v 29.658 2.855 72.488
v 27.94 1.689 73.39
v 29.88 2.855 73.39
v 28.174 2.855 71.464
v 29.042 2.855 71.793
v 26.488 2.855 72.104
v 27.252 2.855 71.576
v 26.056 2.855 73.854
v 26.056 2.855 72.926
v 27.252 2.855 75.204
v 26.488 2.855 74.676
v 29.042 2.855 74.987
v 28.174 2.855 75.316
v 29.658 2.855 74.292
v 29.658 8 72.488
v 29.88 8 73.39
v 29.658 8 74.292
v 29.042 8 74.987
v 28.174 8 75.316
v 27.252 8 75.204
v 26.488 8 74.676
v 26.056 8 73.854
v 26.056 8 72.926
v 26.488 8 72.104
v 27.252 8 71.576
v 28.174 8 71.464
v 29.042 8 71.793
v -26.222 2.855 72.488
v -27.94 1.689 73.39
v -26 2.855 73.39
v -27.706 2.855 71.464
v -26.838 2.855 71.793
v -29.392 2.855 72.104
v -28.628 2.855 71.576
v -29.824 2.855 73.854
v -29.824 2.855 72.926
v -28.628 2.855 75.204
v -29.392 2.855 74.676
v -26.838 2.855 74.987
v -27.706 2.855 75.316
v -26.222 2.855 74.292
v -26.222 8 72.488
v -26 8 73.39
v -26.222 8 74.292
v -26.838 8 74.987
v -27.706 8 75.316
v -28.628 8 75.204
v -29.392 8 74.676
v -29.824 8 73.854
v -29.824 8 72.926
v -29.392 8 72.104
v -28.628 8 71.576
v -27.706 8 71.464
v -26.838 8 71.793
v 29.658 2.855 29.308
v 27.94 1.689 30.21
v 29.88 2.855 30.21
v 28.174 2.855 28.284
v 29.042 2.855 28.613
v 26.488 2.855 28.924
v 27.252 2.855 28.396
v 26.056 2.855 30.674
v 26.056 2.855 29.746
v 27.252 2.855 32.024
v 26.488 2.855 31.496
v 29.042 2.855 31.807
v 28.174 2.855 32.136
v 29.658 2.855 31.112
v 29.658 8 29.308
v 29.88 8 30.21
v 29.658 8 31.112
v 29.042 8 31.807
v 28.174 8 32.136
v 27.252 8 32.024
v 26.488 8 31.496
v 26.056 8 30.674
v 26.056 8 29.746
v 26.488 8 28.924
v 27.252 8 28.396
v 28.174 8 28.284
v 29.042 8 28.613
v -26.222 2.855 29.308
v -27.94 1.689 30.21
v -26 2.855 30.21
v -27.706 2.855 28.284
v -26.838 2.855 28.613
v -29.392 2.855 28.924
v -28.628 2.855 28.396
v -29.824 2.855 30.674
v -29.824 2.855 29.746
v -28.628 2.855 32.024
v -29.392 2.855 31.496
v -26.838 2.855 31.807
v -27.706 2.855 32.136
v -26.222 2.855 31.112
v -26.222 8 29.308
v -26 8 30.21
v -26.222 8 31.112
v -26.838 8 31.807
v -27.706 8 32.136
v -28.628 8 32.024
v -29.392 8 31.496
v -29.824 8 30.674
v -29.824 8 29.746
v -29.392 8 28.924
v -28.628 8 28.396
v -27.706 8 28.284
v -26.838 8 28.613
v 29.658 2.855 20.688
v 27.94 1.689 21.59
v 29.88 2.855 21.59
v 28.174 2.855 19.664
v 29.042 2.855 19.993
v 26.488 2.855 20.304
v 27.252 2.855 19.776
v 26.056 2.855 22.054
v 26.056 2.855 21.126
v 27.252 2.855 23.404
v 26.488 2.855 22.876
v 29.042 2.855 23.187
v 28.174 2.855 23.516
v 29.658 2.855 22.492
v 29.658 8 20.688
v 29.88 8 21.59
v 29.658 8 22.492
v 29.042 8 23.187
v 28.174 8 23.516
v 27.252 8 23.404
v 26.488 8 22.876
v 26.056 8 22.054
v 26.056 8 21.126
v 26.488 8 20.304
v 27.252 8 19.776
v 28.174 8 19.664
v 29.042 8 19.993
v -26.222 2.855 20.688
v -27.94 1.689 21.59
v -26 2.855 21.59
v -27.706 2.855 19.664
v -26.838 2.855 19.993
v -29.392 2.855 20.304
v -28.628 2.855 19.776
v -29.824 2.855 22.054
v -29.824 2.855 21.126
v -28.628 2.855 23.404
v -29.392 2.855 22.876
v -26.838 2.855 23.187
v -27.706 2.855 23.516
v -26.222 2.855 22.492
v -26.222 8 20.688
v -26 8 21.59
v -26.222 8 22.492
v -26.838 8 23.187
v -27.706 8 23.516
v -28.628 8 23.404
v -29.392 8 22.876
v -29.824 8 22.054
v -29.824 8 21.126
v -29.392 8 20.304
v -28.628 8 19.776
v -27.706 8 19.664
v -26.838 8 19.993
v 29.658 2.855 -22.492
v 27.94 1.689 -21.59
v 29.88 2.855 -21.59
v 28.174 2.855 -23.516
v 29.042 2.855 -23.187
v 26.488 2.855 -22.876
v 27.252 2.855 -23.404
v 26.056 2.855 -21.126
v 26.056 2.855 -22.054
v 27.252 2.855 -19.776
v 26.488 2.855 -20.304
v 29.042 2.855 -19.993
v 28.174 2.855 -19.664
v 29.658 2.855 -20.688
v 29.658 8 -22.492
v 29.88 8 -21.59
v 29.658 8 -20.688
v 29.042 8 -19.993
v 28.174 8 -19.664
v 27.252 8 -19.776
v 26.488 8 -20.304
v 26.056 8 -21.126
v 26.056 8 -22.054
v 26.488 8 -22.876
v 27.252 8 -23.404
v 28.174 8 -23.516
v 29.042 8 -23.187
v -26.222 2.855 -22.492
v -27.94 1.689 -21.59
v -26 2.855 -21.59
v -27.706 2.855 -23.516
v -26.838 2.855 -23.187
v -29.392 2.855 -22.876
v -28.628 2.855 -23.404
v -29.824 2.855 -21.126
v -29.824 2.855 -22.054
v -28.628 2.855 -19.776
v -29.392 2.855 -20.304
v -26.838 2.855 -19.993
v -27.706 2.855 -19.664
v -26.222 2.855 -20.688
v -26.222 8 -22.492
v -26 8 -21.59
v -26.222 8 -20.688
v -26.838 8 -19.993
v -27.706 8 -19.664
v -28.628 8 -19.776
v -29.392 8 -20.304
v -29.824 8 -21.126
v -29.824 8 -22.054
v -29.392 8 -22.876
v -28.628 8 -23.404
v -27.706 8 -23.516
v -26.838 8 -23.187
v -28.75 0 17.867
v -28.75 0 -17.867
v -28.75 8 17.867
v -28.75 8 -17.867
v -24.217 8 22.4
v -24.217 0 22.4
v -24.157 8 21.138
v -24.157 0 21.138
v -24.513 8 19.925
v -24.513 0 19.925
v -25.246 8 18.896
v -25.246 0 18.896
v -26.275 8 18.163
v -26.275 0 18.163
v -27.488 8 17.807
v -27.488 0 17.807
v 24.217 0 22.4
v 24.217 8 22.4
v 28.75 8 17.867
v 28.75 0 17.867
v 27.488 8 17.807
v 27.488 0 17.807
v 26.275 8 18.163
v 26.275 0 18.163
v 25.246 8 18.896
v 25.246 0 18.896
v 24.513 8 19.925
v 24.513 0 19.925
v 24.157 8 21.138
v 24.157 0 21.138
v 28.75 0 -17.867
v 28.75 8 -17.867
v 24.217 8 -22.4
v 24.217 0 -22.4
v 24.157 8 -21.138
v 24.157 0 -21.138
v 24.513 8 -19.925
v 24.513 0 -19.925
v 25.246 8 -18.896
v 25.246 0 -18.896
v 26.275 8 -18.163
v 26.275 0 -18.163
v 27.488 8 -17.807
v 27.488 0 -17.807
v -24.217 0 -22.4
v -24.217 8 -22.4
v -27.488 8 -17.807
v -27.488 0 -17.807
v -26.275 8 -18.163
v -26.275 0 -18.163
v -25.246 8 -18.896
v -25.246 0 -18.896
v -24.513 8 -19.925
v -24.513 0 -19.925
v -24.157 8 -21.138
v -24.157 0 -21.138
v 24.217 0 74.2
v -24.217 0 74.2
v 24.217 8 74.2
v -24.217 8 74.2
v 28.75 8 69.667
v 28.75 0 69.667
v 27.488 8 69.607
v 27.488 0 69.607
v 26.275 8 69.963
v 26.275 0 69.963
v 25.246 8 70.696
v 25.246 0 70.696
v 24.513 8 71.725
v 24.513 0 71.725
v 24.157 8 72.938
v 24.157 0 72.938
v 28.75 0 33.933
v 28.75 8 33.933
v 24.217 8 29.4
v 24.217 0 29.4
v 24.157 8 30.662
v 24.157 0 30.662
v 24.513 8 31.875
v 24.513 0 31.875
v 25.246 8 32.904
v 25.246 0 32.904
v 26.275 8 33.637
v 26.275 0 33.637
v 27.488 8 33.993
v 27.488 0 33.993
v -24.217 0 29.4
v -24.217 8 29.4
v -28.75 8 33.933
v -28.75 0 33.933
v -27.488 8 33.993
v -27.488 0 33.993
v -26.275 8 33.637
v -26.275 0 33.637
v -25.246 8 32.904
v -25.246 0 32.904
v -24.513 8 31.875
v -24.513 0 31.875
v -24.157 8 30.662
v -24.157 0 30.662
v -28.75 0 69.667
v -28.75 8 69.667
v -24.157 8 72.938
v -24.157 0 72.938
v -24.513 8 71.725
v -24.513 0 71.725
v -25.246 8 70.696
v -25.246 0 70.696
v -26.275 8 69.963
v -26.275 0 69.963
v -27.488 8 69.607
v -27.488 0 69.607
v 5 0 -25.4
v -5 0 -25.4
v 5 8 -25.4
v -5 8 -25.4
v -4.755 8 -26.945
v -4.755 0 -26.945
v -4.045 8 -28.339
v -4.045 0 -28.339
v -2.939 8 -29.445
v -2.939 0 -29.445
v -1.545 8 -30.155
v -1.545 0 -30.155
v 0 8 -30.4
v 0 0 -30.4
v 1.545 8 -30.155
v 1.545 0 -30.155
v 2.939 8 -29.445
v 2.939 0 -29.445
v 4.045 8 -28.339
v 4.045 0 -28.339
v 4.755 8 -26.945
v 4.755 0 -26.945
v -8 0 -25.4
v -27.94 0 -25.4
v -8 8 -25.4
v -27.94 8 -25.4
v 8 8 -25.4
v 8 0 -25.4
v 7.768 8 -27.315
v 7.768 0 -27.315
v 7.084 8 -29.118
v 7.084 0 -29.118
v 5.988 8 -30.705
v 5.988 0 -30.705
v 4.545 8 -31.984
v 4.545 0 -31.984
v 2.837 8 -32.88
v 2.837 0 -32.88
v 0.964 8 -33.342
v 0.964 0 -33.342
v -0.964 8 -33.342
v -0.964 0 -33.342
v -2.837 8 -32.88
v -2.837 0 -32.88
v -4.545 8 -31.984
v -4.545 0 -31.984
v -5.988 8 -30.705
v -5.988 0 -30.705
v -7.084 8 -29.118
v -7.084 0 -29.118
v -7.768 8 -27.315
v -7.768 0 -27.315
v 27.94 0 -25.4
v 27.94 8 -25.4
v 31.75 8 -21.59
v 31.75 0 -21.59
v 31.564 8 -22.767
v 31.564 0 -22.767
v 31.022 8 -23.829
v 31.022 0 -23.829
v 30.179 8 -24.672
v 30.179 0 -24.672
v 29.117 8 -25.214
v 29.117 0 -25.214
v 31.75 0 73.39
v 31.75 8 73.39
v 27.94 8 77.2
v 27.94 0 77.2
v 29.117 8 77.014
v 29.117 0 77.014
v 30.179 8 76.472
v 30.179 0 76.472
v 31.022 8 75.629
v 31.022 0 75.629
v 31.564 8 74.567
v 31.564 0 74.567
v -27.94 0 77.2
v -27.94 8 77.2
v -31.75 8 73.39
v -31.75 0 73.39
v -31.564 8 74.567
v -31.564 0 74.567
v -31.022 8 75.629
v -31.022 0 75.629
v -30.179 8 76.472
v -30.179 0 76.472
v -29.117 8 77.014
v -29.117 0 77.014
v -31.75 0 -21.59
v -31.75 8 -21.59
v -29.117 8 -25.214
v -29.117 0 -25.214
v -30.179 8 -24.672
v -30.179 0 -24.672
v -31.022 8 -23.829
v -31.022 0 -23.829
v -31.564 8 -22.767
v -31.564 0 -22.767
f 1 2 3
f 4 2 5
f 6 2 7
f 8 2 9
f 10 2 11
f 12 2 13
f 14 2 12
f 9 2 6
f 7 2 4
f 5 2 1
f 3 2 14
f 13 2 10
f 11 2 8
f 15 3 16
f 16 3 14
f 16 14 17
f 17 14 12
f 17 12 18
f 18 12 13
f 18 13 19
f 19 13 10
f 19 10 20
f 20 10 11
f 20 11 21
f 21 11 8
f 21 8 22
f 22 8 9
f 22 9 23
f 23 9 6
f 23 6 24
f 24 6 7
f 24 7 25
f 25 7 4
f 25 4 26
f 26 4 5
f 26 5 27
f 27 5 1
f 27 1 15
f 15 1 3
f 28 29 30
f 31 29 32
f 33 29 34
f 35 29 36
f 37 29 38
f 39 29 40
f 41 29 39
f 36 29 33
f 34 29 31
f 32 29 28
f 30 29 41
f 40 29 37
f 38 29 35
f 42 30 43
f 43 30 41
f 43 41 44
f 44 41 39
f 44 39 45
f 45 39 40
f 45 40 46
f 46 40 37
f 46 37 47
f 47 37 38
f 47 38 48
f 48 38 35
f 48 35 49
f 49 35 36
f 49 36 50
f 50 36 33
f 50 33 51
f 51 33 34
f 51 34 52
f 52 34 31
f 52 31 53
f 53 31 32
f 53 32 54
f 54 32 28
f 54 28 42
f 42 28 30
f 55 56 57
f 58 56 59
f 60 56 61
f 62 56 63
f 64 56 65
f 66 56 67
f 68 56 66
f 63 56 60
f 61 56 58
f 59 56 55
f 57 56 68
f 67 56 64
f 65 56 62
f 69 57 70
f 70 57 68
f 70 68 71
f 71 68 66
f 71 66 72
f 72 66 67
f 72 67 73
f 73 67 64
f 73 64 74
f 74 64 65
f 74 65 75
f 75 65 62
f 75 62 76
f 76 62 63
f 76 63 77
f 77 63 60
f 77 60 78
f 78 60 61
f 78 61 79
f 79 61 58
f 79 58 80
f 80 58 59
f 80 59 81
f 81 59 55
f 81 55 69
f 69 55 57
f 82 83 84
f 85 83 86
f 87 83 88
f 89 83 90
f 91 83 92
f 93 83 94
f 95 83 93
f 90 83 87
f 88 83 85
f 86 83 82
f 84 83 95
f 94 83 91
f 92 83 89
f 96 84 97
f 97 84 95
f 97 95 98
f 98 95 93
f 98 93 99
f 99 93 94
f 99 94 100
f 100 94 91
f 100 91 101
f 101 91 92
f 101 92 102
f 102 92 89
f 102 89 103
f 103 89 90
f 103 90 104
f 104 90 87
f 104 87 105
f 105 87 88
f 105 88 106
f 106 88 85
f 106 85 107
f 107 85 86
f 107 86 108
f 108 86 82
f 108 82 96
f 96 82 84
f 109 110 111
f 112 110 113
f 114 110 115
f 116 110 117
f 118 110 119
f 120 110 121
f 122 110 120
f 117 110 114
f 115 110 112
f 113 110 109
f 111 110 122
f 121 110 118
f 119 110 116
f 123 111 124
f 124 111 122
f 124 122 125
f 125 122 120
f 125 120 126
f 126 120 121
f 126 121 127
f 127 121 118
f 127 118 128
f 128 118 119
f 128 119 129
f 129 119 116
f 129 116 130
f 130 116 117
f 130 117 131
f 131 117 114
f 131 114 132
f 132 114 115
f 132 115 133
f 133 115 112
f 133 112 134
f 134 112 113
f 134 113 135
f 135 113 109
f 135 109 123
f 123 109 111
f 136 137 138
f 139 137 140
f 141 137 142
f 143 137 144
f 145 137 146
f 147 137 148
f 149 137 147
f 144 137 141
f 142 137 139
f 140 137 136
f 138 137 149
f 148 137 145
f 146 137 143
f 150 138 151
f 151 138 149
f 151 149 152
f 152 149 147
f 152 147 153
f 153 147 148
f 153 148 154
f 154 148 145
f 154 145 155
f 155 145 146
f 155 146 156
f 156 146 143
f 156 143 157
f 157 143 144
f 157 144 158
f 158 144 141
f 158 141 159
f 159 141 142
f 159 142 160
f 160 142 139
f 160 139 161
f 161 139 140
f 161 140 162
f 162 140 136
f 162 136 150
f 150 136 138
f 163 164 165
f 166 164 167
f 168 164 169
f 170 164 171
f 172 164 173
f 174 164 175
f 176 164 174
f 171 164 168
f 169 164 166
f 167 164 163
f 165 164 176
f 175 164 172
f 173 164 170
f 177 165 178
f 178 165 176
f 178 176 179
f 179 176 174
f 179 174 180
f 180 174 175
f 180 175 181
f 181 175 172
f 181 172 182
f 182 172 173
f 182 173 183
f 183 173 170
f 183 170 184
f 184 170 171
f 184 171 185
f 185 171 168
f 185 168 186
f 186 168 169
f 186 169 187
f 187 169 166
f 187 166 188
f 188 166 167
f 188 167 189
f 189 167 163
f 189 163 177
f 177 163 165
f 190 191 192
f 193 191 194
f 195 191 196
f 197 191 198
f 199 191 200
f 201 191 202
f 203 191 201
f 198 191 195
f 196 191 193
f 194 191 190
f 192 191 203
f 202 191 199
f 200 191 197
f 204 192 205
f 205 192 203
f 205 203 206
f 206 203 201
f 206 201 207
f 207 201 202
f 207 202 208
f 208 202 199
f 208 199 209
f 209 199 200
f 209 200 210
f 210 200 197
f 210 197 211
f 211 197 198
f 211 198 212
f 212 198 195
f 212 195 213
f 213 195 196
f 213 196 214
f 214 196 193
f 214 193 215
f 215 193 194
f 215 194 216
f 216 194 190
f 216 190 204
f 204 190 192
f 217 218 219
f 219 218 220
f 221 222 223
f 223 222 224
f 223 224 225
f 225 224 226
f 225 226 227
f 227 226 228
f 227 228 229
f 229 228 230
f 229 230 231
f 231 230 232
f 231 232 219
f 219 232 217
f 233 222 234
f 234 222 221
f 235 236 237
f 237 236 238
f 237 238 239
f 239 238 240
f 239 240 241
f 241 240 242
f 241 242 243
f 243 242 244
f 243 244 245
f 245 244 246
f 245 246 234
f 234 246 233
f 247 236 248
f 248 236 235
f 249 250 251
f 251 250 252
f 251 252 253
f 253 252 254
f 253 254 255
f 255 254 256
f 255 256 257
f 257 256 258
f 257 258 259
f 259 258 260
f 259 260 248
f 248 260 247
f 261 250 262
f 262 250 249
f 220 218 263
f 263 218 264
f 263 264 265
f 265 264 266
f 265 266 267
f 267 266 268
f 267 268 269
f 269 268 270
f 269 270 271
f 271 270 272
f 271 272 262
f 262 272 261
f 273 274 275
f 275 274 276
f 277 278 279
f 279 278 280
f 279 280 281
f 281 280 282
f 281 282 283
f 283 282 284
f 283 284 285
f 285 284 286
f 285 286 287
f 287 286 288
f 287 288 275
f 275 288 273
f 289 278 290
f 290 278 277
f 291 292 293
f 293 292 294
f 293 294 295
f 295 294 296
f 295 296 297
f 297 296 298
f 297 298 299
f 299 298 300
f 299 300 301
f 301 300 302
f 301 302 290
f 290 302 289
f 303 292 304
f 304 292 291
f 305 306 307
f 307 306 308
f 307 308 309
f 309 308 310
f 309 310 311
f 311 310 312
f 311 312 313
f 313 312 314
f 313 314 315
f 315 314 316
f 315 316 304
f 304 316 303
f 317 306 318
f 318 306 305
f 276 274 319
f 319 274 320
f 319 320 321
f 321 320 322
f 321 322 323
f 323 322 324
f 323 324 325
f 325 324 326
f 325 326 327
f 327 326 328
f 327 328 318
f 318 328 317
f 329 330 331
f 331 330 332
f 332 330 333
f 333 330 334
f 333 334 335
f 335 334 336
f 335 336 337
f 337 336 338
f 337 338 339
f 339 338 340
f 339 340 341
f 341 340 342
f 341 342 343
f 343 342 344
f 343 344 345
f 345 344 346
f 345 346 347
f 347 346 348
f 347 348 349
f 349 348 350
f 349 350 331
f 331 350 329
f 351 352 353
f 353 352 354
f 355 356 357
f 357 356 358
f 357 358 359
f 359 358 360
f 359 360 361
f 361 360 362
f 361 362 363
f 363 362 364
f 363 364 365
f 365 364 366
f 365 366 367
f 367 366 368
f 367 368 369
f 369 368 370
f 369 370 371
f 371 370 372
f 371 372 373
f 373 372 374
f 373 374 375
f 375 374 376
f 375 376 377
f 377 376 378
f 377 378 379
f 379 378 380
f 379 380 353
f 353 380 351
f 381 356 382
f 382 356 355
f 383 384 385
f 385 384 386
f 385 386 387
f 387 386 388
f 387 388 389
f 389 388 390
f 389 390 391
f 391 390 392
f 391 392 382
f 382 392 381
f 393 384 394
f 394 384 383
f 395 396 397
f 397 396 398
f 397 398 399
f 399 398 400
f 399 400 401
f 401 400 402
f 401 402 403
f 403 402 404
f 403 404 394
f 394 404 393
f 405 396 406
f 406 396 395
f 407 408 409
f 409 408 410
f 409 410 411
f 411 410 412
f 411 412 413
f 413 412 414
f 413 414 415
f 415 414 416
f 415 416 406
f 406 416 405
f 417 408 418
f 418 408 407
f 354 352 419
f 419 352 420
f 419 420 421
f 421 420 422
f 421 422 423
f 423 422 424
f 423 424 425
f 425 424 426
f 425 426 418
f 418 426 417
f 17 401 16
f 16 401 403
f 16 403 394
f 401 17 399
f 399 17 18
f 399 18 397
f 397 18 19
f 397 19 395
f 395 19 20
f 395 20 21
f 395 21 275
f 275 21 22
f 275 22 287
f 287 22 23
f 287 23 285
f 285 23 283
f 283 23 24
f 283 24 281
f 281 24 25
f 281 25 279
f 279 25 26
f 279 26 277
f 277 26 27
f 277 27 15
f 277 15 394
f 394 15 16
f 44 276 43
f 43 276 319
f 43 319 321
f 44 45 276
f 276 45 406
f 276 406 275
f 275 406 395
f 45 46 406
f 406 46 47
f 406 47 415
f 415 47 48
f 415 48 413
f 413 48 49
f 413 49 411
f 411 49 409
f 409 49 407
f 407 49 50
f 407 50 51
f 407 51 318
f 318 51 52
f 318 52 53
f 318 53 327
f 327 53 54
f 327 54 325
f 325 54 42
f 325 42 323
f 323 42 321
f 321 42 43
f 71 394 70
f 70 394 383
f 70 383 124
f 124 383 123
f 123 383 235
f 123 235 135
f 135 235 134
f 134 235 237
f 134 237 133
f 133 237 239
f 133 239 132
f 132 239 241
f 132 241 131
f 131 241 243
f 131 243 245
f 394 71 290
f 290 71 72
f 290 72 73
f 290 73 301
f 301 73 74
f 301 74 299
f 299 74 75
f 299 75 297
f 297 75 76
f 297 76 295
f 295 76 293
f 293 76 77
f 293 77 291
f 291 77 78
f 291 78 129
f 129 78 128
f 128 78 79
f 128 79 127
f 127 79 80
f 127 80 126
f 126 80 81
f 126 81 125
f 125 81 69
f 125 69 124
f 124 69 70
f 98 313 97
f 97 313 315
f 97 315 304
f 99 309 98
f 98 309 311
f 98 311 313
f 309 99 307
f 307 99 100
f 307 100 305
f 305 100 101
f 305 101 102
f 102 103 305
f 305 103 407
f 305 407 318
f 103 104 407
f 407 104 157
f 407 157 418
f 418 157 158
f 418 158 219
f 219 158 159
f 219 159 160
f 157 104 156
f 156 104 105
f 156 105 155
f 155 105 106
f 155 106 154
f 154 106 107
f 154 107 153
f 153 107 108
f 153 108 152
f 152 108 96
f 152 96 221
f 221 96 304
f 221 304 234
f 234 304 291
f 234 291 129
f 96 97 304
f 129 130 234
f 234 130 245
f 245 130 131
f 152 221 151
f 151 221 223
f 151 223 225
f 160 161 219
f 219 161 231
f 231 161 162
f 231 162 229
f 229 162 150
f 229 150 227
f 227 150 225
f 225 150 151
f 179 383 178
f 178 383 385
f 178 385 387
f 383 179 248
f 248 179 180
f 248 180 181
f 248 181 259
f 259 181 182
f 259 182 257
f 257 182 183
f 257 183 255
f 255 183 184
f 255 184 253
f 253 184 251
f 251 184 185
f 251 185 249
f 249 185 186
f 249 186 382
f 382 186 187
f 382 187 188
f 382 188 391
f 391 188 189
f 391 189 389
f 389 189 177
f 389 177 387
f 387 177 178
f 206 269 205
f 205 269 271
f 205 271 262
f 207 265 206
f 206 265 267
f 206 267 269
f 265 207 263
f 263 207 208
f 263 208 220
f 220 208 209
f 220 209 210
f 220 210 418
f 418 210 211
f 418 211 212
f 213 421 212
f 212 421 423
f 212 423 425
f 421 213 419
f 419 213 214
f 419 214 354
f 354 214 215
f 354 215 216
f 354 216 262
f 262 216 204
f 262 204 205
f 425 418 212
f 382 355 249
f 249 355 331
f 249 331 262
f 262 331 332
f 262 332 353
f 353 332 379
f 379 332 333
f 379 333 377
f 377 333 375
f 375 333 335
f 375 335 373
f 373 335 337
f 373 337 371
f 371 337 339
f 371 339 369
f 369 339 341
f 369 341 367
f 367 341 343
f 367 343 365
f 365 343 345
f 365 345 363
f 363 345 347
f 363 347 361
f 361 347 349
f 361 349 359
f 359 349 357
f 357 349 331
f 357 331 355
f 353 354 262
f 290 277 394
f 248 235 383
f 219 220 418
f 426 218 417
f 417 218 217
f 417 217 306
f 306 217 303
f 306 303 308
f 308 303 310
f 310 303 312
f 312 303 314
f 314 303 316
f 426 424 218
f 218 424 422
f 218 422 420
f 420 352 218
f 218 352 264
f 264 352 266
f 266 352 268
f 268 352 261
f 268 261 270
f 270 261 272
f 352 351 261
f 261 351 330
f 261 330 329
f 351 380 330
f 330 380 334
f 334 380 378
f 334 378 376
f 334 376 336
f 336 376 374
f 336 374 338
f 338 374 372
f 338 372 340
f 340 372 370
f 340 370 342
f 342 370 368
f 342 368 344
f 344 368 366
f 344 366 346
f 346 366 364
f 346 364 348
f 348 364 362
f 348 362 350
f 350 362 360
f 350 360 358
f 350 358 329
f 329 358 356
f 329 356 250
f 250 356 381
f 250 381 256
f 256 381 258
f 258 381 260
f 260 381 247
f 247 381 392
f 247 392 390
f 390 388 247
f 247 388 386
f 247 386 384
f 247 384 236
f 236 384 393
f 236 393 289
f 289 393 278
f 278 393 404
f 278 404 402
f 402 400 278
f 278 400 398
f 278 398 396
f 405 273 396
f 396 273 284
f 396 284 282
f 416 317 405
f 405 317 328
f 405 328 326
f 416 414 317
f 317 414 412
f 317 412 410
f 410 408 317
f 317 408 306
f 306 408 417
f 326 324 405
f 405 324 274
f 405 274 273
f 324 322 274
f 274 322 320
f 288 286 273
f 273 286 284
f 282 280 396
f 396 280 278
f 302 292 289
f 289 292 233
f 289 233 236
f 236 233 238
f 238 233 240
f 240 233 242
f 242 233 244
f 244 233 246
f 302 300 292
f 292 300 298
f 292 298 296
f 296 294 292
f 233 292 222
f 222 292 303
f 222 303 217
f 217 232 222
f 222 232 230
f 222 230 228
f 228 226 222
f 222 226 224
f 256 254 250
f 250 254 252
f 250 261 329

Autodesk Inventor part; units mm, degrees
ref_plane "YZ Plane" through (0, 0, 0) normal (1, 0, 0) x (0, 1, 0)
ref_plane "XZ Plane" through (0, 0, 0) normal (0, 1, 0) x (-1, 0, 0)
ref_plane "XY Plane" through (0, 0, 0) normal (0, 0, 1) x (1, 0, 0)
sketch "Sketch1" plane through (0, 0, 0) normal (0, 1, 0) x (-1, 0, 0)
  circle A0 centre (27.94, -21.59) radius 1.94 construction
  line L0 (3.8945, 0) -> (-7.0745, 0) construction
  line L1 (0, -4.534) -> (0, 5.5912) construction
  circle A1 centre (-27.94, -21.59) radius 1.94 construction
  circle A2 centre (27.94, 21.59) radius 1.94 construction
  circle A3 centre (-27.94, 21.59) radius 1.94 construction
  line L2 (27.94, -25.4) -> (-27.94, -25.4)
  line L3 (31.75, 25.9) -> (-31.75, 25.9) construction
  line L4 (31.75, -21.59) -> (31.75, 25.9)
  line L5 (-31.75, -21.59) -> (-31.75, 25.9)
  line L6 (24.2171, -22.4) -> (-24.2171, -22.4)
  line L7 (24.2171, 22.4) -> (-24.2171, 22.4)
  line L8 (28.75, -17.8671) -> (28.75, 17.8671)
  line L9 (-28.75, -17.8671) -> (-28.75, 17.8671)
  arc A4 (-24.2171, -22.4) -> (-28.75, -17.8671) centre (-27.94, -21.59) ccw
  arc A5 (-31.75, -21.59) -> (-27.94, -25.4) centre (-27.94, -21.59) ccw
  arc A6 (27.94, -25.4) -> (31.75, -21.59) centre (27.94, -21.59) ccw
  arc A7 (28.75, -17.8671) -> (24.2171, -22.4) centre (27.94, -21.59) ccw
  arc A8 (-28.75, 17.8671) -> (-24.2171, 22.4) centre (-27.94, 21.59) ccw
  arc A9 (24.2171, 22.4) -> (28.75, 17.8671) centre (27.94, 21.59) ccw
  circle A10 centre (27.94, 73.39) radius 1.94 construction
  circle A11 centre (-27.94, 73.39) radius 1.94 construction
  circle A12 centre (27.94, 30.21) radius 1.94 construction
  circle A13 centre (-27.94, 30.21) radius 1.94 construction
  line L10 (27.94, 77.2) -> (-27.94, 77.2)
  line L11 (31.75, 73.39) -> (31.75, 25.9)
  line L12 (-31.75, 73.39) -> (-31.75, 25.9)
  line L13 (24.2171, 74.2) -> (-24.2171, 74.2)
  line L14 (24.2171, 29.4) -> (-24.2171, 29.4)
  line L15 (28.75, 69.6671) -> (28.75, 33.9329)
  line L16 (-28.75, 69.6671) -> (-28.75, 33.9329)
  arc A14 (-28.75, 69.6671) -> (-24.2171, 74.2) centre (-27.94, 73.39) ccw
  arc A15 (-27.94, 77.2) -> (-31.75, 73.39) centre (-27.94, 73.39) ccw
  arc A16 (31.75, 73.39) -> (27.94, 77.2) centre (27.94, 73.39) ccw
  arc A17 (24.2171, 74.2) -> (28.75, 69.6671) centre (27.94, 73.39) ccw
  arc A18 (-24.2171, 29.4) -> (-28.75, 33.9329) centre (-27.94, 30.21) ccw
  arc A19 (28.75, 33.9329) -> (24.2171, 29.4) centre (27.94, 30.21) ccw
  arc A20 (-8, -25.4) -> (8, -25.4) centre (0, -25.4) ccw
  arc A21 (-5, -25.4) -> (5, -25.4) centre (0, -25.4) ccw
  point P0 (0, 0)
  dimension "d0" = 3.88
  dimension "d1" = 27.94
  dimension "d2" = 21.59
  dimension "d5" = 55.88
  dimension "d8" = 43.18
  dimension "d11" = 25.4
  dimension "d12" = 31.75
  dimension "d13" = 3
  dimension "d14" = 3
  dimension "d16" = 3.5
  dimension "d17" = 8
  dimension "d18" = 5
extrude "Extrusion1" add sketch "Sketch1" along normal blind 8 contours L2 A5 L5 L12 A15 L10 A16 L11 L4 A6 | A20 L2 A21
sketch "Sketch2" plane through (0, 8, 0) normal (0, 1, 0) x (1, 0, 0)
  line L0 (-31.75, 21.59) -> (-31.75, -73.39) projected
  line L1 (-8, 25.4) -> (-27.94, 25.4) projected
  point P0 (0, 0)
  point P1 (-27.94, 21.59)
  dimension "d28" = 3.81
  dimension "d29" = 3.81
hole "Hole1" at (-27.94, 8, -21.59) direction (0, -1, 0) diameter 3.88 depth 5.145 tip angle 118
pattern_linear "Rectangular Pattern1" count 2 spacing 55.88 along (1, 0, 0) count 2 spacing 43.18 along (0, 0, 1) of "Hole1"
pattern_linear "Rectangular Pattern2" count 2 spacing 51.8 along (0, 0, 1) of "Hole1", "Rectangular Pattern1"
properties part number "balloonMount_x2"
